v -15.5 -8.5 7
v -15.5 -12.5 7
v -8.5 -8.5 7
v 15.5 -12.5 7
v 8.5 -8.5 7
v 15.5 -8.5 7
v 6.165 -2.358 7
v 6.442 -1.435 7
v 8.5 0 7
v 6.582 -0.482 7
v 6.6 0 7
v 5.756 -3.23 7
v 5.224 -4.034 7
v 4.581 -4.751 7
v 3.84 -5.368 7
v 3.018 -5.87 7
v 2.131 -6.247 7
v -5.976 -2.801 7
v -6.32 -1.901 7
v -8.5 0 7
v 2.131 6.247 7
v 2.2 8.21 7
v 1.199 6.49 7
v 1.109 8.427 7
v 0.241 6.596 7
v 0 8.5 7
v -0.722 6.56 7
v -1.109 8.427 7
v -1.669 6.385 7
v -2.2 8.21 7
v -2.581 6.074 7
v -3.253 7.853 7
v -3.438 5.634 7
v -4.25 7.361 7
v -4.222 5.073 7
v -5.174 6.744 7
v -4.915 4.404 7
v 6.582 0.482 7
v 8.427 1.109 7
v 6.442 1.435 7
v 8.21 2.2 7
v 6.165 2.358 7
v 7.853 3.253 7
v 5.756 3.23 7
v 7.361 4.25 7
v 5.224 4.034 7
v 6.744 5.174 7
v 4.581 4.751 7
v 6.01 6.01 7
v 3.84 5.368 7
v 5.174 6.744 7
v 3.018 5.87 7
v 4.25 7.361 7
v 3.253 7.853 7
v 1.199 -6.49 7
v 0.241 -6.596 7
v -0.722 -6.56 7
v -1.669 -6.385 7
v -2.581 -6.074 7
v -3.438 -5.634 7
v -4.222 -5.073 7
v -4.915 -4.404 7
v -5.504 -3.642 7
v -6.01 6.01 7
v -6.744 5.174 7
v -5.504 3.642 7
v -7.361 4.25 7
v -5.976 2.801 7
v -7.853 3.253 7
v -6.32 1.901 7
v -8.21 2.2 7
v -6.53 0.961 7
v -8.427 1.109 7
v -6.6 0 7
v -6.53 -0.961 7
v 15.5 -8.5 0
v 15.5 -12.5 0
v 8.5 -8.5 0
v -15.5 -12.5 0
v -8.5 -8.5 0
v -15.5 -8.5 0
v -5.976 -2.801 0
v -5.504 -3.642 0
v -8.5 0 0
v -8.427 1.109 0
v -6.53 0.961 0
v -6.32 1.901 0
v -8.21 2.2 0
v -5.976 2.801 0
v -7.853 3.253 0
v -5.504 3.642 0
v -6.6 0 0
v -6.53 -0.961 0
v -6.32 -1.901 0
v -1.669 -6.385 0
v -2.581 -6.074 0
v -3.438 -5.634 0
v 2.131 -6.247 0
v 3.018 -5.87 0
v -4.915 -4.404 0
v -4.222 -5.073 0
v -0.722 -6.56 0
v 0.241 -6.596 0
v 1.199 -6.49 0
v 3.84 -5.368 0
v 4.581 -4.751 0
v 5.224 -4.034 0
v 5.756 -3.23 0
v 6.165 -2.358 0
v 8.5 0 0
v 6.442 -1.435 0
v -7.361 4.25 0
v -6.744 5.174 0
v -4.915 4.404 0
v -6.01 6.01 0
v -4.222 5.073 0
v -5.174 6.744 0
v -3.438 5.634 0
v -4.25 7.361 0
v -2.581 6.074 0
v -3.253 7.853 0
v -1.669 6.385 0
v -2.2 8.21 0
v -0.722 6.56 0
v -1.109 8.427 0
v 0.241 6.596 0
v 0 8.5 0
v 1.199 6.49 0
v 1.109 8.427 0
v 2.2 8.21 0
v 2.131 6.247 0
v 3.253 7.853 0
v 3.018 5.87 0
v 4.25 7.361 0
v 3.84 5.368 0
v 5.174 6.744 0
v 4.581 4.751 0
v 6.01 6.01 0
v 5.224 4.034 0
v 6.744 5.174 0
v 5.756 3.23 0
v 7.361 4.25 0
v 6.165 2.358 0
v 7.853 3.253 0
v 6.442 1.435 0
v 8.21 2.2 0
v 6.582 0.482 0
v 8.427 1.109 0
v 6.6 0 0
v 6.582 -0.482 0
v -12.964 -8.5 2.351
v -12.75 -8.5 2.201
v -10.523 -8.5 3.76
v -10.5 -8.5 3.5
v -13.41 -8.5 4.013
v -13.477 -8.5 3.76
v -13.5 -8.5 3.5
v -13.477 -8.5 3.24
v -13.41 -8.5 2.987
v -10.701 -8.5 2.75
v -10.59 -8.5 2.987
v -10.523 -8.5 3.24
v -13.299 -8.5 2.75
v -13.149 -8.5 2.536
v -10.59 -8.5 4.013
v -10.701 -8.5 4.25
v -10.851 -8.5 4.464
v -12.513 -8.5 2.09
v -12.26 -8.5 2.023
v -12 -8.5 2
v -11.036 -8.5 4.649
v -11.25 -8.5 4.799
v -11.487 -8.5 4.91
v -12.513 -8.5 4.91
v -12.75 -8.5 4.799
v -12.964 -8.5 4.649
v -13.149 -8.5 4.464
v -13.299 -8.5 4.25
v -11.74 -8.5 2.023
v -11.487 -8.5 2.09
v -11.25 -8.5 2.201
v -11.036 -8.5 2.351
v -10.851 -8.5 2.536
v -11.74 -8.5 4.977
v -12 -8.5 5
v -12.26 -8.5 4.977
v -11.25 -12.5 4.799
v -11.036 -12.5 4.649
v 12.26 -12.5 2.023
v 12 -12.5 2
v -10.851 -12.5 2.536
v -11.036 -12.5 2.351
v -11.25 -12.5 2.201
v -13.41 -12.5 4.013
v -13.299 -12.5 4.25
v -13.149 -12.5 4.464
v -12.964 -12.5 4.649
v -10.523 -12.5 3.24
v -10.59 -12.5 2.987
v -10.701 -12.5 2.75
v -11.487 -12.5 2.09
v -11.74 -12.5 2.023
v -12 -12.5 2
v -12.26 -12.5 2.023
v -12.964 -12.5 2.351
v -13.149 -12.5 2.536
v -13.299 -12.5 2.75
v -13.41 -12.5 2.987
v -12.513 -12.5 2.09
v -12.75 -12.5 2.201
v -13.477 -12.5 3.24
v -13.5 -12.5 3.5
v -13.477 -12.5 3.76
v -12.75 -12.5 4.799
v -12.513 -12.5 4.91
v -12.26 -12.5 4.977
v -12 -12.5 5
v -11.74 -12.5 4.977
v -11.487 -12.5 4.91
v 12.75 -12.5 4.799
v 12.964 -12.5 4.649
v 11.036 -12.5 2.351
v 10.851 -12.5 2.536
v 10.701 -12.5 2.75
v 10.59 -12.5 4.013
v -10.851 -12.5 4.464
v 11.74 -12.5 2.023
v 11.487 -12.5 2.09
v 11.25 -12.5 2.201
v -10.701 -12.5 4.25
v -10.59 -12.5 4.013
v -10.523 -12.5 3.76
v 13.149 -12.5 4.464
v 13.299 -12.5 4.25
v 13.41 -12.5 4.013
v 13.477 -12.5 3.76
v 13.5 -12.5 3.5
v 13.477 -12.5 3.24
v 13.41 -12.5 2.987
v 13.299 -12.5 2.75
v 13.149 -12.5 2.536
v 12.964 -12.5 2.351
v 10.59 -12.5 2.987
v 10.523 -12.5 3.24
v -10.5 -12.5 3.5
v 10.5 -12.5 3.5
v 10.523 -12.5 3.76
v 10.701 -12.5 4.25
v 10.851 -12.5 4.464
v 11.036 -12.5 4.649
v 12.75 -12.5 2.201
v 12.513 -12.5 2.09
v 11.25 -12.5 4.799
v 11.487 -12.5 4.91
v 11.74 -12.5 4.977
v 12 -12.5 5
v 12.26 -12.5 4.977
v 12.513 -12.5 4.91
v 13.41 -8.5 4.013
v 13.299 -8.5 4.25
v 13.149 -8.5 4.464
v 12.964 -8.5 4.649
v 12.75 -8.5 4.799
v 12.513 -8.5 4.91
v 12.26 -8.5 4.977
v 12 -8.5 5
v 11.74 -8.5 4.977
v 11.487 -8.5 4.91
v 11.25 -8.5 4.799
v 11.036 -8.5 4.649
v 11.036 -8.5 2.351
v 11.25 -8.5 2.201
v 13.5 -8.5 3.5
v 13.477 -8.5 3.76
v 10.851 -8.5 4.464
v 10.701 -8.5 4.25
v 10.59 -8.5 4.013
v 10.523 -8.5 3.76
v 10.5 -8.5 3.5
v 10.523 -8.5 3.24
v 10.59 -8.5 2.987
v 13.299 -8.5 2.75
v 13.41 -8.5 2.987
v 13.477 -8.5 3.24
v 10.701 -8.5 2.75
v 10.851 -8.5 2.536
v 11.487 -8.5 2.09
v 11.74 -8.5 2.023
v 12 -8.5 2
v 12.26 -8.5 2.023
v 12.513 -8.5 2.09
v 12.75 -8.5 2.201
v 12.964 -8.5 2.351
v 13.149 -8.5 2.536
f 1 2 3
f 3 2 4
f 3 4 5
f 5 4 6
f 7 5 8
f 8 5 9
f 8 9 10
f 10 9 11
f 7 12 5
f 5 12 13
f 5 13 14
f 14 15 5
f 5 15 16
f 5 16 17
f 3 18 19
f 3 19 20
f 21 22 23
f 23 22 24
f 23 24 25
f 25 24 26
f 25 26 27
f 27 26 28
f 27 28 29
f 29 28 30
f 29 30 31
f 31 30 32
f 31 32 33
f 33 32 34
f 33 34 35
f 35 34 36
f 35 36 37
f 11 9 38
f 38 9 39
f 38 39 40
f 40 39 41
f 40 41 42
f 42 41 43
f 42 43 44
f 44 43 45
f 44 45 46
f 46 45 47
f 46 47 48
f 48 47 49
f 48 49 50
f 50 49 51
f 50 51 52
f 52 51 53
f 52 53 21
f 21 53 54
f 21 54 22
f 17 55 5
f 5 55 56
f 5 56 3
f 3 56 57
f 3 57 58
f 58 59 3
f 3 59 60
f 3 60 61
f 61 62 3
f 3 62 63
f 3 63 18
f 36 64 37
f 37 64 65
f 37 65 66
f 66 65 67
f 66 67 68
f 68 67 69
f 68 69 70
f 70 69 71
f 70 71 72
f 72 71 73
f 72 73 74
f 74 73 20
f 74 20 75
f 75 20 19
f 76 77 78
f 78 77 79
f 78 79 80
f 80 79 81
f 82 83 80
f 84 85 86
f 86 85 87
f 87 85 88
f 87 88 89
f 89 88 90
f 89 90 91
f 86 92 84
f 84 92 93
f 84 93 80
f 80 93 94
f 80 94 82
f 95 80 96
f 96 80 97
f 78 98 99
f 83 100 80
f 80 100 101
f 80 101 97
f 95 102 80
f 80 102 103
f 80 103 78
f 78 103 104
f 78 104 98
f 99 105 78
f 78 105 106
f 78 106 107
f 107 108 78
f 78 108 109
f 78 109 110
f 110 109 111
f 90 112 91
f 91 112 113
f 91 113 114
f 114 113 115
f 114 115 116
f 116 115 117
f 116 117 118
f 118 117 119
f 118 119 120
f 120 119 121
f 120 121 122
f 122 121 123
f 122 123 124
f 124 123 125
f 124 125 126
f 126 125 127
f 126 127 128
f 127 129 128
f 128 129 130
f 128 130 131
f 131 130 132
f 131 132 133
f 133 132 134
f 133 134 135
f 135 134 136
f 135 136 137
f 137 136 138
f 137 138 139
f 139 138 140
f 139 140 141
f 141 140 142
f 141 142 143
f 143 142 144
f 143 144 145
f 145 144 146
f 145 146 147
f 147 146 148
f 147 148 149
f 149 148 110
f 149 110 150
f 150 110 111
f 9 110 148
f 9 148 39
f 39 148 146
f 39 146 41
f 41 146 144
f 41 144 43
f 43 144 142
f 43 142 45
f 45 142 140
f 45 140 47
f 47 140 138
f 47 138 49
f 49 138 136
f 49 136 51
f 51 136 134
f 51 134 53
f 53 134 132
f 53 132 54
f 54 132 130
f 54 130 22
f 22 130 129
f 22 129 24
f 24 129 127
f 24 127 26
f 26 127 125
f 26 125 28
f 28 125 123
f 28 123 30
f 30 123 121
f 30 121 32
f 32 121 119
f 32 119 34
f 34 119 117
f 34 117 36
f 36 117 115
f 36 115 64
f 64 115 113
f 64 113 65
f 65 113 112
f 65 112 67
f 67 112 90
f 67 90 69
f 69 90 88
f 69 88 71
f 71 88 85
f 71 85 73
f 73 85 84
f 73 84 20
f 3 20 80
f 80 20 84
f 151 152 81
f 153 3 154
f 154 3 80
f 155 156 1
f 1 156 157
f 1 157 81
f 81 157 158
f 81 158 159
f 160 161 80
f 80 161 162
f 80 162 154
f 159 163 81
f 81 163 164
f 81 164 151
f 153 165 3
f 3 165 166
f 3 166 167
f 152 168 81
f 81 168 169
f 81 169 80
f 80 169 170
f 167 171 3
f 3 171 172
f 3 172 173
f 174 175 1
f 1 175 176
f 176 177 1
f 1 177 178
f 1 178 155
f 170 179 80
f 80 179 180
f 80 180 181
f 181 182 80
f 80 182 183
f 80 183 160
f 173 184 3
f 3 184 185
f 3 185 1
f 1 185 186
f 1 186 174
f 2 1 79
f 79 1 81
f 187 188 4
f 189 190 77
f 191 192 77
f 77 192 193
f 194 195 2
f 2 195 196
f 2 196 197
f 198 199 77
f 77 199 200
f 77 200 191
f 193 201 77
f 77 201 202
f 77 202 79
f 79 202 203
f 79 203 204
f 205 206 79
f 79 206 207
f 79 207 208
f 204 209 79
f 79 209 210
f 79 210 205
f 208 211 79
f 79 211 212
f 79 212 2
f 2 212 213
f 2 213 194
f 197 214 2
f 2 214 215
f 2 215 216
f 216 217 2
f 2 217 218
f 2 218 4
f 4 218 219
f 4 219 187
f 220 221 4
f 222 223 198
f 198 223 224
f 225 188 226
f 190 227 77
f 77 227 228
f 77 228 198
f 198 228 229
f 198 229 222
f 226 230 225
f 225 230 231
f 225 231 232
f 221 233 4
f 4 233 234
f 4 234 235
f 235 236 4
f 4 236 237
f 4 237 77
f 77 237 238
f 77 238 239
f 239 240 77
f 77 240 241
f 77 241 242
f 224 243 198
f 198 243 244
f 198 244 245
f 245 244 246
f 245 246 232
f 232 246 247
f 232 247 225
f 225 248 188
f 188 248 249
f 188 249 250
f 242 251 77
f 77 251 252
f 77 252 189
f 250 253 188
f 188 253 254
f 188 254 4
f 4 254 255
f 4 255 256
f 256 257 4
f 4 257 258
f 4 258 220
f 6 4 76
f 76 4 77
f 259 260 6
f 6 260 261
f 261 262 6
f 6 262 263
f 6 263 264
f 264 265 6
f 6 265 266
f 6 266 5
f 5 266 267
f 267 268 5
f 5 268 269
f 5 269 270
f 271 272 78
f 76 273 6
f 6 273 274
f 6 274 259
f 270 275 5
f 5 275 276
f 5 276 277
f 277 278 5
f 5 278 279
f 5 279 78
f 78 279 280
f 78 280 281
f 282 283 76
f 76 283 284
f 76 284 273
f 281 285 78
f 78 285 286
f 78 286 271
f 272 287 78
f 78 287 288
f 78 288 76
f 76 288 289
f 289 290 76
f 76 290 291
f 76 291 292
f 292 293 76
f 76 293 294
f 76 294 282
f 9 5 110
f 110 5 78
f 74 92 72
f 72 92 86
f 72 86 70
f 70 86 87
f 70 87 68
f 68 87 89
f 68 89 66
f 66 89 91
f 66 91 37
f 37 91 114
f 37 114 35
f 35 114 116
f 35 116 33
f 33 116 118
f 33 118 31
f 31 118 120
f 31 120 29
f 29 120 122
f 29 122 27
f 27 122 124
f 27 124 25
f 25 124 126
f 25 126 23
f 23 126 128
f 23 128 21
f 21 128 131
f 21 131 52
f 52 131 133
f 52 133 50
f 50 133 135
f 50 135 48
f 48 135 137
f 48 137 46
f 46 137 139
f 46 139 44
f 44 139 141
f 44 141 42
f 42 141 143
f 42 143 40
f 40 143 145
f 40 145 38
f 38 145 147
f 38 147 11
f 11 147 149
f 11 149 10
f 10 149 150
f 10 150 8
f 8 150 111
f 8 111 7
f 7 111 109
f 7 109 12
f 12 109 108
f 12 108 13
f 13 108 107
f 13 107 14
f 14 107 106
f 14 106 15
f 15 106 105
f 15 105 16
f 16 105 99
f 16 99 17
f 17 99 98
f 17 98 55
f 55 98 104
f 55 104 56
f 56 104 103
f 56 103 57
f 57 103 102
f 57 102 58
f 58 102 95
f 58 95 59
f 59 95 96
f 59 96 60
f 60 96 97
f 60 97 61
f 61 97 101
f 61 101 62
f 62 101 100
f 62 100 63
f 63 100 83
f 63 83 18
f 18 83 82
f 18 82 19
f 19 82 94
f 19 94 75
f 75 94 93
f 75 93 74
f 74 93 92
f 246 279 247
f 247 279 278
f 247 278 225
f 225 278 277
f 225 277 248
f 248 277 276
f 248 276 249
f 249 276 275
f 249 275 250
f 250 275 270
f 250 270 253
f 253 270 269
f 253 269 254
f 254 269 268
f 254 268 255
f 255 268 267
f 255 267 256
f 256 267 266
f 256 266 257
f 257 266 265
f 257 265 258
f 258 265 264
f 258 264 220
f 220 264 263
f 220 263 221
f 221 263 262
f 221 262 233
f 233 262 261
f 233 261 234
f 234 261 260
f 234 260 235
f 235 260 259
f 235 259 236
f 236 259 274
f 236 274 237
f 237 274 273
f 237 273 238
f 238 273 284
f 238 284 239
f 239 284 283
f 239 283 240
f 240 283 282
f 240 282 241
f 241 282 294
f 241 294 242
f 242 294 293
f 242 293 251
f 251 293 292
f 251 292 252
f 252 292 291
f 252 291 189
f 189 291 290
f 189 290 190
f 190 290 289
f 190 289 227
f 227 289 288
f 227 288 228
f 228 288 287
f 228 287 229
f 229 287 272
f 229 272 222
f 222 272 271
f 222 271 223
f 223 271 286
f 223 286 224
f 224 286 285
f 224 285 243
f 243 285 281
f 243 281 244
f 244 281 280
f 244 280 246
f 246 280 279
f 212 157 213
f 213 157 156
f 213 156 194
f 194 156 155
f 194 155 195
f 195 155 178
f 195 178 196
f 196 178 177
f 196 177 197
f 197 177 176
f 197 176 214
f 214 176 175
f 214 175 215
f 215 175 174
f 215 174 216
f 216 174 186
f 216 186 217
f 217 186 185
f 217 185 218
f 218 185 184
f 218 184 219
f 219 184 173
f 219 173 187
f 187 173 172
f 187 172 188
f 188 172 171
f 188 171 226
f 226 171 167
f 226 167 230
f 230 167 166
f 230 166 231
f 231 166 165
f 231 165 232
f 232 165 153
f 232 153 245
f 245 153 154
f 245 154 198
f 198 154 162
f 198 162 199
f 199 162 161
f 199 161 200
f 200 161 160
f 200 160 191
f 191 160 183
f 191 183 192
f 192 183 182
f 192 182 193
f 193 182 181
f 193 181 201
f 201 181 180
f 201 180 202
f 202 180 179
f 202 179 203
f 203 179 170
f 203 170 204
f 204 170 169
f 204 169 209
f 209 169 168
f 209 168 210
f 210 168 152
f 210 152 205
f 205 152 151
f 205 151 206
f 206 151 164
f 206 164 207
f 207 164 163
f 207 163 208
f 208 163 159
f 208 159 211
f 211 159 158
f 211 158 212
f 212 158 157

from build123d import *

# Parameters (mm, degrees)
SKETCH_1_R          = 6.6
EXTRUDE_1_DEPTH     = 7
SKETCH_2_R          = 1.5
CUT_EXTRUDE_1_DEPTH = 25.046829313


with BuildPart() as part:
    # 草图1 → 凸台-拉伸1 (new body)
    with BuildSketch(Plane.XY):
        with BuildLine():
            Line((-8.5, 0), (-8.5, -8.5))
            Line((-8.5, -8.5), (-15.5, -8.5))
            Line((-15.5, -8.5), (-15.5, -12.5))
            Line((-15.5, -12.5), (-8.5, -12.5))
            Line((-8.5, -12.5), (8.5, -12.5))
            Line((8.5, -12.5), (15.5, -12.5))
            Line((15.5, -12.5), (15.5, -8.5))
            Line((15.5, -8.5), (8.5, -8.5))
            Line((8.5, -8.5), (8.5, 0))
            ThreePointArc((8.5, 0), (0, 8.5), (-8.5, 0))
        make_face()
        Circle(SKETCH_1_R, mode=Mode.SUBTRACT)
    extrude(amount=EXTRUDE_1_DEPTH)

    # 草图2 → 切除-拉伸1 (cut, through all)
    with BuildSketch(Plane(origin=(0, -8.5, 0), x_dir=(1, 0, 0), z_dir=(0, 1, 0))):
        with Locations(Location((-12, -3.5, 0), (0, 0, 180))):
            Circle(SKETCH_2_R)
        with Locations((12, -3.5)):
            Circle(SKETCH_2_R)
    extrude(amount=-CUT_EXTRUDE_1_DEPTH, mode=Mode.SUBTRACT)


solid = part.part
